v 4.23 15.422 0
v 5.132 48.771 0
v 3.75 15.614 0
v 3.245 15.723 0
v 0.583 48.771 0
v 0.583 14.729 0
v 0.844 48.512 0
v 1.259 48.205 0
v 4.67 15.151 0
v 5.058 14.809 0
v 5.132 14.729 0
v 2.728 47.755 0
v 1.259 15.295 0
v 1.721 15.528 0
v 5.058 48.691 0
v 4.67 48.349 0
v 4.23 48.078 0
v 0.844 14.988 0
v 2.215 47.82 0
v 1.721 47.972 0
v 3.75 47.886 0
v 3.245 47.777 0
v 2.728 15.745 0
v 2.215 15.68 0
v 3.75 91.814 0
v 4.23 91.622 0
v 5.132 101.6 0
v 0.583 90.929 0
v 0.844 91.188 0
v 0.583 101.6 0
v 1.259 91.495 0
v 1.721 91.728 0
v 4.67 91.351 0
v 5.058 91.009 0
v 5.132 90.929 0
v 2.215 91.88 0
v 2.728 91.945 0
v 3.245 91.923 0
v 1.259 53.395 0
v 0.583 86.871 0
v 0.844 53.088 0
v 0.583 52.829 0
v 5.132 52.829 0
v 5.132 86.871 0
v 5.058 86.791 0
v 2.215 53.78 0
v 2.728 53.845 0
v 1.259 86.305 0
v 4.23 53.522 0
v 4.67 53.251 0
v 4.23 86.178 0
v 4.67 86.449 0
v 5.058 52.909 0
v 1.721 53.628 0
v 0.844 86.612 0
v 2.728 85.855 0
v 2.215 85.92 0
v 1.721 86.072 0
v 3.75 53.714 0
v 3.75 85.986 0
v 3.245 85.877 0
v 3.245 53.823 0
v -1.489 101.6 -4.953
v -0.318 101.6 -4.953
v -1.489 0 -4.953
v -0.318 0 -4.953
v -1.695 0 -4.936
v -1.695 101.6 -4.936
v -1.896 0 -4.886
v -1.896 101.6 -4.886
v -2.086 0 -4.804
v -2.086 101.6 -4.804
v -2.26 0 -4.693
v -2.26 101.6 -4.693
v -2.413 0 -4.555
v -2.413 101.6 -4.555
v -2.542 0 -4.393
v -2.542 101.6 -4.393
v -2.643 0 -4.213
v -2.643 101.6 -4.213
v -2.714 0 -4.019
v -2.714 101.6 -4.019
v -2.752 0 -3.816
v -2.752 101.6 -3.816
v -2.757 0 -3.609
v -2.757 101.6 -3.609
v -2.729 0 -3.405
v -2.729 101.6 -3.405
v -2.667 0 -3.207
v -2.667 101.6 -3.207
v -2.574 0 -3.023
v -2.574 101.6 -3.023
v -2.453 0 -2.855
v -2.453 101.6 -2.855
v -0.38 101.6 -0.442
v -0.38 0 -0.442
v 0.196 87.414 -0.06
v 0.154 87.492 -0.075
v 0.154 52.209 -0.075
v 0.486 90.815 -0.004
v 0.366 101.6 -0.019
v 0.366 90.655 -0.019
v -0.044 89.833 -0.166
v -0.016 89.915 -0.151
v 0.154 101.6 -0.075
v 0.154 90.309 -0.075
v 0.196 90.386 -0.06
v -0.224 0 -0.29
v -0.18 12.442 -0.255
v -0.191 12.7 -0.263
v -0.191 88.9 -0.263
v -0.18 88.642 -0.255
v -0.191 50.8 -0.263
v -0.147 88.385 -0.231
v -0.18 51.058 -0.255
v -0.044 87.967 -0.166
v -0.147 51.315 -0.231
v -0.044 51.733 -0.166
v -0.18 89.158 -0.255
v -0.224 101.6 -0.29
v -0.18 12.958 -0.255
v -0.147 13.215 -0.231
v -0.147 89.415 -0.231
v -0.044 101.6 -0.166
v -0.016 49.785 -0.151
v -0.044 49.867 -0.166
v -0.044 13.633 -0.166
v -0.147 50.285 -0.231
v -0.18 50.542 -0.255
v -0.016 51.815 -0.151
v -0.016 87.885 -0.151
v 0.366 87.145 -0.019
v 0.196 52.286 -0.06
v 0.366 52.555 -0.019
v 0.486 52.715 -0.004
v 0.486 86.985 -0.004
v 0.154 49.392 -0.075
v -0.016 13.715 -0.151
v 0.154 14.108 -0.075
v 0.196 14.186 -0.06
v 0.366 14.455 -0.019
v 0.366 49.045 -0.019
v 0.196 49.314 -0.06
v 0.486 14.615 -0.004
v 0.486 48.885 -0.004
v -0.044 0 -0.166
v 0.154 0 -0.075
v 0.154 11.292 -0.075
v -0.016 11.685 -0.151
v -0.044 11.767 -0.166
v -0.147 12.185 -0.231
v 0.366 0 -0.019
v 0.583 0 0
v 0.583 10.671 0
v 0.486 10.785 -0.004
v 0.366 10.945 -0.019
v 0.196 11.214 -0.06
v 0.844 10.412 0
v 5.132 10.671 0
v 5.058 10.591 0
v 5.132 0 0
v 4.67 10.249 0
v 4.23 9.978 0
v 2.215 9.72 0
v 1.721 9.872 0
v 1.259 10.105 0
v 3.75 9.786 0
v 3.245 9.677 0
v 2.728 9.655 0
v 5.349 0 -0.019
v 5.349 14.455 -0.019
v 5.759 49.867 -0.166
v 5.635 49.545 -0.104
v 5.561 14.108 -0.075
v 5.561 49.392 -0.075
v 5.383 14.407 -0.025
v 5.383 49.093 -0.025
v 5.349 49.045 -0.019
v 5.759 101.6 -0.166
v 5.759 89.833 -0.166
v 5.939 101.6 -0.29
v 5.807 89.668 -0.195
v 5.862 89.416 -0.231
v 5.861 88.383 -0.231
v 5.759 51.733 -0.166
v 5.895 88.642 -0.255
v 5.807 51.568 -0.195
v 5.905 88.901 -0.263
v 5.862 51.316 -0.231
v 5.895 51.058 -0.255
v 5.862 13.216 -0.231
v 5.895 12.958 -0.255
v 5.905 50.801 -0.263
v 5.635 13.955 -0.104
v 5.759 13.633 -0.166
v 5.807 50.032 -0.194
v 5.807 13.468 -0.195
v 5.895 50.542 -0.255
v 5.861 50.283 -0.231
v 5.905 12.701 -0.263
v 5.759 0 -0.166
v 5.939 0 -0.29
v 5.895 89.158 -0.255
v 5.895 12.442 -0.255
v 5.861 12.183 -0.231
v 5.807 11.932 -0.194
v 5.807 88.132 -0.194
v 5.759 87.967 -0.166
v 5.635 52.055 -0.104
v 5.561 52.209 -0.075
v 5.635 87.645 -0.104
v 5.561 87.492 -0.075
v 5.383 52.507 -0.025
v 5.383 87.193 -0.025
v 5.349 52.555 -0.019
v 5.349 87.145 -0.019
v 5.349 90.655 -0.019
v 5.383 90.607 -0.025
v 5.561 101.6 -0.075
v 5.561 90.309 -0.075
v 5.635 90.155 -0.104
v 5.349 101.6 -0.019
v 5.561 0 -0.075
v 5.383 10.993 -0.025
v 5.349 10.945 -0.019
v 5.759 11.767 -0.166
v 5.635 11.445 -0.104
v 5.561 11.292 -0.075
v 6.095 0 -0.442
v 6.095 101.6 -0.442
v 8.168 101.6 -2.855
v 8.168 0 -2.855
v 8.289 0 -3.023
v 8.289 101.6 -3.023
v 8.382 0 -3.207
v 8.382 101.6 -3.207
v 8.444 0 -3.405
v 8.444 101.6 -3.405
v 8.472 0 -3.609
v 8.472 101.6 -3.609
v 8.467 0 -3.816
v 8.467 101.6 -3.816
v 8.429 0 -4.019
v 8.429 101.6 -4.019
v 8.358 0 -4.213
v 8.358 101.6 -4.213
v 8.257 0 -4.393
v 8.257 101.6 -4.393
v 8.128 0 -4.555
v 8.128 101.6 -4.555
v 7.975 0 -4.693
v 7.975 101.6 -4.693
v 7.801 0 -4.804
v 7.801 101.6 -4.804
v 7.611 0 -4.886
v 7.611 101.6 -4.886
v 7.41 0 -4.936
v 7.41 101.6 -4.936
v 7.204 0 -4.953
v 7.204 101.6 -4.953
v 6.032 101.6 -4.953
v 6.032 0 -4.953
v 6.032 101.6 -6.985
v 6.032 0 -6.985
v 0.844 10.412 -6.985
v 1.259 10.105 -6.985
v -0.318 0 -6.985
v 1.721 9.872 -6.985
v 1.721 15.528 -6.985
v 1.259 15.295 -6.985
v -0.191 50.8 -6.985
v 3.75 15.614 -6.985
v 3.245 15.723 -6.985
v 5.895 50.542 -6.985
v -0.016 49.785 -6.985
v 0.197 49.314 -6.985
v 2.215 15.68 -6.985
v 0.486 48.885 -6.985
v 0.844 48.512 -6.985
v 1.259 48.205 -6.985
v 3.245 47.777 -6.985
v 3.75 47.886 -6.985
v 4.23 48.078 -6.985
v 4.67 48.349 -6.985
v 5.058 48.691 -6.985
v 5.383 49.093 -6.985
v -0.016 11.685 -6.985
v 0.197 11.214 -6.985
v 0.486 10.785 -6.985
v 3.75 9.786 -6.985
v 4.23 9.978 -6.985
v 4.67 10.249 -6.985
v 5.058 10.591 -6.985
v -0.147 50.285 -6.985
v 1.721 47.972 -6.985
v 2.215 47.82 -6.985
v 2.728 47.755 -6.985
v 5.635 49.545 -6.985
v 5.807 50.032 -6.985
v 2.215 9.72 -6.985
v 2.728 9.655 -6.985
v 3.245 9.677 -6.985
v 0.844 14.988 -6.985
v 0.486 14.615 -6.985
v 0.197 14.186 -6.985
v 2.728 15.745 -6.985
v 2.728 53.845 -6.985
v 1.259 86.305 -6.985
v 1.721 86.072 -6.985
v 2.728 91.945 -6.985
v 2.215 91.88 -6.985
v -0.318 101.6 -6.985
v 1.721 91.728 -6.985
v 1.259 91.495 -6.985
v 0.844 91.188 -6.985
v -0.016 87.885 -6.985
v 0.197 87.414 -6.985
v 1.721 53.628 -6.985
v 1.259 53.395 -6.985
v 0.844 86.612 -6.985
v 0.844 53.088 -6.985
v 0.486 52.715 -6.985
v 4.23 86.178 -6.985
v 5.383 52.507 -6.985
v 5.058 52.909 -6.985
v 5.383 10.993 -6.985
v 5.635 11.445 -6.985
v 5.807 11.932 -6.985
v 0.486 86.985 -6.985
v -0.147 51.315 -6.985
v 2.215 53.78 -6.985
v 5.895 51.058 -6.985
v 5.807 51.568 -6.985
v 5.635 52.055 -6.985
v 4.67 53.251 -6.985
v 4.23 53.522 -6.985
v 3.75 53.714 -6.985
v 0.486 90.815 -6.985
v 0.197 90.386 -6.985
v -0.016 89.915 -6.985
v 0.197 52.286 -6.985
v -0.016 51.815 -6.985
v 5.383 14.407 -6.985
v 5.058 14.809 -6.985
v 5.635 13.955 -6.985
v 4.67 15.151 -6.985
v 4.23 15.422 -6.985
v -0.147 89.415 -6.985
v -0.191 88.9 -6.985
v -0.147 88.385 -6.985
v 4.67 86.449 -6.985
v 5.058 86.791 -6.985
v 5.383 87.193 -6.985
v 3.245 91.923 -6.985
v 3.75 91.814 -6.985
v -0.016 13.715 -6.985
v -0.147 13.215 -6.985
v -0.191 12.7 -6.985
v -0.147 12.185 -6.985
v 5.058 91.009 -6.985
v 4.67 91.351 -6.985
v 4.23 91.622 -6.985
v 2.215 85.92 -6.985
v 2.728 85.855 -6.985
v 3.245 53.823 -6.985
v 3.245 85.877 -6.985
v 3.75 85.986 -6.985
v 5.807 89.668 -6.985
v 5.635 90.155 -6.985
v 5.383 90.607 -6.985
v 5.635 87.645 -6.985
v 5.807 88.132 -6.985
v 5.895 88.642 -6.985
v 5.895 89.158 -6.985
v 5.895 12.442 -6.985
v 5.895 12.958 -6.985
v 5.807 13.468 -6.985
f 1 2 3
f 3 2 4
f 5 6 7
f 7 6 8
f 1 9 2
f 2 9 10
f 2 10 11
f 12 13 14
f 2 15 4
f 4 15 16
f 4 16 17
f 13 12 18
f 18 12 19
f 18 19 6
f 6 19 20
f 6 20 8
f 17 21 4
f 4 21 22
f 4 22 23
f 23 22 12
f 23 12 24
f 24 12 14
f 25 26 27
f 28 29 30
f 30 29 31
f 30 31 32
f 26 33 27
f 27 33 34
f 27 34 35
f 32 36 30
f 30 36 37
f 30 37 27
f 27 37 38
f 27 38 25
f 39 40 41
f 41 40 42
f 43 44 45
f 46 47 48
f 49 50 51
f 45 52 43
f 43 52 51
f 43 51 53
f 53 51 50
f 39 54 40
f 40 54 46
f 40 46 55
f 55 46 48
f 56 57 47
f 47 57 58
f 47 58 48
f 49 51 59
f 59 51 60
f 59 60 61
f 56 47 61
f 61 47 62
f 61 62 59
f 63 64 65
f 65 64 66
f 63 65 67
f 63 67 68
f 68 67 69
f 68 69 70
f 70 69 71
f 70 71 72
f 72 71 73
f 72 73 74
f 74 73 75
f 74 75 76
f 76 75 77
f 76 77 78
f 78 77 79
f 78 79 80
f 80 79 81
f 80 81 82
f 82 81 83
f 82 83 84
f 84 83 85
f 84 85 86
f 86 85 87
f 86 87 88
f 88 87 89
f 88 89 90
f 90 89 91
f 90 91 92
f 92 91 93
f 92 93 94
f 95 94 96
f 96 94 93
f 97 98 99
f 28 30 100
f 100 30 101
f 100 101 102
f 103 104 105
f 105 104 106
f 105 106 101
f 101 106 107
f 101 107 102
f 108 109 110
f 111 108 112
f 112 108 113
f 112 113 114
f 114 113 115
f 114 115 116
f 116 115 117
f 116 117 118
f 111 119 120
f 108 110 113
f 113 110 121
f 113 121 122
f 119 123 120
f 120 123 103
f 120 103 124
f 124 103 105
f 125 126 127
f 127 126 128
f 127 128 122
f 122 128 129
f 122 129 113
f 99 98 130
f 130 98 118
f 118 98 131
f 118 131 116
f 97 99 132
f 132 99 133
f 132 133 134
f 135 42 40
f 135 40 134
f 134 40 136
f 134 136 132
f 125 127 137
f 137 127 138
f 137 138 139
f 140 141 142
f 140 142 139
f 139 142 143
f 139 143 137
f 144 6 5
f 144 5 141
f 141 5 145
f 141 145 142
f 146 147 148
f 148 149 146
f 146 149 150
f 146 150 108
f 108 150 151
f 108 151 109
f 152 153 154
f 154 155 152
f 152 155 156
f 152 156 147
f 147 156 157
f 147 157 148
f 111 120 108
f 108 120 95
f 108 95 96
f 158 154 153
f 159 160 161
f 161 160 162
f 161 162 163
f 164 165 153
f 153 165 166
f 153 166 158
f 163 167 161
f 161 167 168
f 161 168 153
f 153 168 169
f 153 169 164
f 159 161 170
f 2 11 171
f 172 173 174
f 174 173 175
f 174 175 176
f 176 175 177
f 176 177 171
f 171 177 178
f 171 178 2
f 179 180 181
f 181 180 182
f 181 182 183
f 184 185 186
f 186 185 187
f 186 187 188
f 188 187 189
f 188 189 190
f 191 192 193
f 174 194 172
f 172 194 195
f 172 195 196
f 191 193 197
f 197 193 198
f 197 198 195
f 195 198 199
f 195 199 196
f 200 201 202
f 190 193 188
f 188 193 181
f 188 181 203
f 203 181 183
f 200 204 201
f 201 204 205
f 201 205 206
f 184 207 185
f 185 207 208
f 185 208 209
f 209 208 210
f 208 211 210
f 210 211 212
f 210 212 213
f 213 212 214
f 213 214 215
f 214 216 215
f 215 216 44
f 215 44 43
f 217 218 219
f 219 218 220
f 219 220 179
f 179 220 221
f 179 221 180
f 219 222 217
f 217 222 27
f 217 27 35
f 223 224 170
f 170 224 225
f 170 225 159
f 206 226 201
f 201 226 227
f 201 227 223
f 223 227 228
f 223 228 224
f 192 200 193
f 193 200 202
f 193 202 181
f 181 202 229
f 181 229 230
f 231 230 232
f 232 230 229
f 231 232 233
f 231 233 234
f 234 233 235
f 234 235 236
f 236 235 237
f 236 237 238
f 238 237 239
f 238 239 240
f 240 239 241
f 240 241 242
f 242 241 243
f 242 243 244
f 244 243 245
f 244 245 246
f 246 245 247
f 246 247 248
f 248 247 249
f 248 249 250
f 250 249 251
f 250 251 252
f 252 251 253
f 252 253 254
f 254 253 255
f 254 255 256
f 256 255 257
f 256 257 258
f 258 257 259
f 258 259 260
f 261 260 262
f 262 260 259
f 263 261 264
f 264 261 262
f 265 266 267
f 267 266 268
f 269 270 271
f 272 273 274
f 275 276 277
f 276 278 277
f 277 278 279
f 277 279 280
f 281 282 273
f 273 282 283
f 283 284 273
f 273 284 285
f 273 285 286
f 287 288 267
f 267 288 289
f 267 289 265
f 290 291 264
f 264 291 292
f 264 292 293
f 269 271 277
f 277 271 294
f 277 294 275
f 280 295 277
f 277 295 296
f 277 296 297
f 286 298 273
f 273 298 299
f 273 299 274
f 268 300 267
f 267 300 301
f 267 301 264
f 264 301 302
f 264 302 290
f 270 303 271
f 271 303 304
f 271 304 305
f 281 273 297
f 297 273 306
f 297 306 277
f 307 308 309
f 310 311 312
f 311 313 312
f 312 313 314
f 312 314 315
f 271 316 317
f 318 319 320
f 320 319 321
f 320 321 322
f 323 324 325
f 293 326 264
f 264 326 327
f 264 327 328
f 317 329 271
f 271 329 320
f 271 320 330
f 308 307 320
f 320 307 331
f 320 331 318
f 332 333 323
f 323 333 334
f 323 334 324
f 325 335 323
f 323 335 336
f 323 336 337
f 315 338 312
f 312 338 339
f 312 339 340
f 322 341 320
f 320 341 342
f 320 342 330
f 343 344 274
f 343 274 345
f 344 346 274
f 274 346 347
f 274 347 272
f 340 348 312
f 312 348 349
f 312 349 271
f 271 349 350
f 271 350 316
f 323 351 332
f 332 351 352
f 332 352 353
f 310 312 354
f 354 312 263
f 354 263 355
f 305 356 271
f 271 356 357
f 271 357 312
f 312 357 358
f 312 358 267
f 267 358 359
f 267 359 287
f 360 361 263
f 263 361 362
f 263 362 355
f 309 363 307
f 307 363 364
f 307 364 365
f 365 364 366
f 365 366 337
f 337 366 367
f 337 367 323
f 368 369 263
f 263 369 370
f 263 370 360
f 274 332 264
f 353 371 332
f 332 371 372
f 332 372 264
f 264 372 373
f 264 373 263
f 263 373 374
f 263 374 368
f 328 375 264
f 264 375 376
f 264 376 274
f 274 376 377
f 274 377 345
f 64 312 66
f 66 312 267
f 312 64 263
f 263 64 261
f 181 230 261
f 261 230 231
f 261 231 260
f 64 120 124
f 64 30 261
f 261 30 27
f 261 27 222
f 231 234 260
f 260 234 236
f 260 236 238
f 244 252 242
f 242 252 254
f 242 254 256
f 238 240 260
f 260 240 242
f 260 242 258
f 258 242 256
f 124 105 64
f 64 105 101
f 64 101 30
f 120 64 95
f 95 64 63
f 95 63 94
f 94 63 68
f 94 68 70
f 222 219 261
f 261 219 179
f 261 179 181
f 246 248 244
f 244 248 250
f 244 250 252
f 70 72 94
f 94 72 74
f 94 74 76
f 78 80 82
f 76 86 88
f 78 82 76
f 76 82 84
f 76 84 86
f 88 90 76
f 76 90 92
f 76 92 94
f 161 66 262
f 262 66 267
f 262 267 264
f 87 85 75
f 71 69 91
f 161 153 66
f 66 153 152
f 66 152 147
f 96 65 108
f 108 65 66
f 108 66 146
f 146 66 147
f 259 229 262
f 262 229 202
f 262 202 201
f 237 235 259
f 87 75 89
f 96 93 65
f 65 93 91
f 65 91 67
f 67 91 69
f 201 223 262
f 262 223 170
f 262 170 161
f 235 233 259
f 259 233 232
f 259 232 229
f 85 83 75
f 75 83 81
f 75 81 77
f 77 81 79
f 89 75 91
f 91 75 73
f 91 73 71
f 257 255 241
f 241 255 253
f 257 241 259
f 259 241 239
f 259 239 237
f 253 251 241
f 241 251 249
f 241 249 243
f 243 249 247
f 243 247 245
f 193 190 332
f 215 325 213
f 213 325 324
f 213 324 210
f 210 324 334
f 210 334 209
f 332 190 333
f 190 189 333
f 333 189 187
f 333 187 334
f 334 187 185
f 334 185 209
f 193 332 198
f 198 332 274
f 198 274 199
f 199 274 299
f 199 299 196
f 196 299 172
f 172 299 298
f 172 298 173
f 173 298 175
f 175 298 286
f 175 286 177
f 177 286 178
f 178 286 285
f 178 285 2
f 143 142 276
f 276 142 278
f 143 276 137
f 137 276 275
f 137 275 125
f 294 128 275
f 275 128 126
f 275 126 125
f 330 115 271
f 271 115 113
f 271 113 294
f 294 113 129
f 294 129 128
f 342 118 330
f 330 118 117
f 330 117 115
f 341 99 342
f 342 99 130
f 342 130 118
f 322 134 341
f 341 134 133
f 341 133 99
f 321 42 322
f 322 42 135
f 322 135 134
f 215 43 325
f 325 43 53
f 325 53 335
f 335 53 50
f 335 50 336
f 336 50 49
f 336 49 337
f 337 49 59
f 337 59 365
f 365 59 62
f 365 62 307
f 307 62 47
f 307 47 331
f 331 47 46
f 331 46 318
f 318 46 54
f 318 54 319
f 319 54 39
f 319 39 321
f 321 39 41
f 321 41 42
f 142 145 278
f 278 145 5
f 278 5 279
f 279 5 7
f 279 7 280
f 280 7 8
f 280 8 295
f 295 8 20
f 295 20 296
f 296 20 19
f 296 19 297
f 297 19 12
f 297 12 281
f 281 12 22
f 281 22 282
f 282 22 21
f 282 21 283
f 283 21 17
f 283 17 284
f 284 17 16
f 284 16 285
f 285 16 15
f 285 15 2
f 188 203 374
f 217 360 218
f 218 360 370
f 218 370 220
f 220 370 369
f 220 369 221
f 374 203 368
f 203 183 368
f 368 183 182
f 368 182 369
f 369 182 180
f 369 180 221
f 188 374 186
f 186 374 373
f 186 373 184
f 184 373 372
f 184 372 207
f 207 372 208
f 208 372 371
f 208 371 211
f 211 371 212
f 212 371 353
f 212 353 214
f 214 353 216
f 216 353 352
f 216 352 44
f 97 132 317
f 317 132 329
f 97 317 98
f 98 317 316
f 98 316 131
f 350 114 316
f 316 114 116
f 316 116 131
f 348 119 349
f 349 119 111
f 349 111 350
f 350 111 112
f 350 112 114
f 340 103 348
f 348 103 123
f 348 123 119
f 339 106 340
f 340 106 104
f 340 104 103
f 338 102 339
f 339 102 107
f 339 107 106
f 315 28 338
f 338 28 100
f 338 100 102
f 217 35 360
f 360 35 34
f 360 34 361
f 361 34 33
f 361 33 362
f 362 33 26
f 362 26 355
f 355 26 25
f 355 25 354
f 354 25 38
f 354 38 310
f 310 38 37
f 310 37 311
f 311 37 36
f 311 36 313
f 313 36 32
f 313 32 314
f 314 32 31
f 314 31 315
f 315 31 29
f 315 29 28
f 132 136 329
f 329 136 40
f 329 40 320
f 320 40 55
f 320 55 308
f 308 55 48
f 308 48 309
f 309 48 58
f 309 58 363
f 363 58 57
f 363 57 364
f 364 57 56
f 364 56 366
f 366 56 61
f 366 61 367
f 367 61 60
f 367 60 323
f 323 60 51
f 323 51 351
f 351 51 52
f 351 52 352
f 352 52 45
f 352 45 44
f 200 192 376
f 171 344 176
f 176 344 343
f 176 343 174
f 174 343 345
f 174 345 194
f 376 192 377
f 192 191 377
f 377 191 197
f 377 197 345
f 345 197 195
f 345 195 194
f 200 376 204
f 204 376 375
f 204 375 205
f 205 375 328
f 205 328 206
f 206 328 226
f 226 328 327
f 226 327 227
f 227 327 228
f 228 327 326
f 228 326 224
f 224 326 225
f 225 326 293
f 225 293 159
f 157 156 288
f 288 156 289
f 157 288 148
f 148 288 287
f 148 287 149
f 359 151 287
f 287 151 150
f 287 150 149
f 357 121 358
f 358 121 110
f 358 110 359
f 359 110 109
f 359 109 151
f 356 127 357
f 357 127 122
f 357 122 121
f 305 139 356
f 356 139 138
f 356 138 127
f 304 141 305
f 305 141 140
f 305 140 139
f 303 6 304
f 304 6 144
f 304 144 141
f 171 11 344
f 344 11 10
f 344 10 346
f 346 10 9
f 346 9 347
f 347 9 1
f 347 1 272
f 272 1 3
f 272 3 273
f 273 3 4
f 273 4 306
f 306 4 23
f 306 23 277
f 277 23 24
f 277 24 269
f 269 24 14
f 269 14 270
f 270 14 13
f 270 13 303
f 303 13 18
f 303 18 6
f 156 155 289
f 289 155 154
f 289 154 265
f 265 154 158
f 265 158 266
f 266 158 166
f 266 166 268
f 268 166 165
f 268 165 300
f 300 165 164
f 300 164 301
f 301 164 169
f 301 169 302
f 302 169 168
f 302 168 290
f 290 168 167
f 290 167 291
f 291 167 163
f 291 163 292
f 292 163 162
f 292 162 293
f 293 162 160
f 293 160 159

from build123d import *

# Parameters (mm, degrees)
BOSS_EXTRUDE1_DEPTH = 101.6
SKETCH2_R           = 3.048
CUT_EXTRUDE4_DEPTH  = 127


with BuildPart() as part:
    # Sketch1 → Boss-Extrude1 (new body)
    with BuildSketch(Plane(origin=(0, 0, 0), x_dir=(1, 0, 0), z_dir=(0, 1, 0))):
        with BuildLine():
            Line((0.583306021, 0), (5.131693979, 0))
            ThreePointArc((5.131693979, 0), (5.661763503, 0.115908886), (6.095077487, 0.442478269))
            Line((6.095077487, 0.442478269), (8.167782615, 2.855478269))
            ThreePointArc((8.167782615, 2.855478269), (8.358490221, 4.213069524), (7.204399107, 4.953))
            Line((7.204399107, 4.953), (6.0325, 4.953))
            Line((6.0325, 4.953), (6.0325, 6.985))
            Line((6.0325, 6.985), (-0.3175, 6.985))
            Line((-0.3175, 6.985), (-0.3175, 4.953))
            Line((-0.3175, 4.953), (-1.489399107, 4.953))
            ThreePointArc((-1.489399107, 4.953), (-2.643490221, 4.213069524), (-2.452782615, 2.855478269))
            Line((-2.452782615, 2.855478269), (-0.380077487, 0.442478269))
            ThreePointArc((-0.380077487, 0.442478269), (0.053236497, 0.115908886), (0.583306021, 0))
        make_face()
    extrude(amount=BOSS_EXTRUDE1_DEPTH)

    # Sketch2 → Cut-Extrude4 (cut)
    with BuildSketch(Plane(origin=(0, 0, -6.985), x_dir=(-1, 0, 0), z_dir=(0, 0, -1))):
        with Locations((-2.8575, 50.8)):
            Circle(SKETCH2_R)
        with Locations((-2.8575, 88.9)):
            Circle(SKETCH2_R)
        with Locations((-2.8575, 12.7)):
            Circle(SKETCH2_R)
    extrude(amount=-CUT_EXTRUDE4_DEPTH, mode=Mode.SUBTRACT)


solid = part.part
